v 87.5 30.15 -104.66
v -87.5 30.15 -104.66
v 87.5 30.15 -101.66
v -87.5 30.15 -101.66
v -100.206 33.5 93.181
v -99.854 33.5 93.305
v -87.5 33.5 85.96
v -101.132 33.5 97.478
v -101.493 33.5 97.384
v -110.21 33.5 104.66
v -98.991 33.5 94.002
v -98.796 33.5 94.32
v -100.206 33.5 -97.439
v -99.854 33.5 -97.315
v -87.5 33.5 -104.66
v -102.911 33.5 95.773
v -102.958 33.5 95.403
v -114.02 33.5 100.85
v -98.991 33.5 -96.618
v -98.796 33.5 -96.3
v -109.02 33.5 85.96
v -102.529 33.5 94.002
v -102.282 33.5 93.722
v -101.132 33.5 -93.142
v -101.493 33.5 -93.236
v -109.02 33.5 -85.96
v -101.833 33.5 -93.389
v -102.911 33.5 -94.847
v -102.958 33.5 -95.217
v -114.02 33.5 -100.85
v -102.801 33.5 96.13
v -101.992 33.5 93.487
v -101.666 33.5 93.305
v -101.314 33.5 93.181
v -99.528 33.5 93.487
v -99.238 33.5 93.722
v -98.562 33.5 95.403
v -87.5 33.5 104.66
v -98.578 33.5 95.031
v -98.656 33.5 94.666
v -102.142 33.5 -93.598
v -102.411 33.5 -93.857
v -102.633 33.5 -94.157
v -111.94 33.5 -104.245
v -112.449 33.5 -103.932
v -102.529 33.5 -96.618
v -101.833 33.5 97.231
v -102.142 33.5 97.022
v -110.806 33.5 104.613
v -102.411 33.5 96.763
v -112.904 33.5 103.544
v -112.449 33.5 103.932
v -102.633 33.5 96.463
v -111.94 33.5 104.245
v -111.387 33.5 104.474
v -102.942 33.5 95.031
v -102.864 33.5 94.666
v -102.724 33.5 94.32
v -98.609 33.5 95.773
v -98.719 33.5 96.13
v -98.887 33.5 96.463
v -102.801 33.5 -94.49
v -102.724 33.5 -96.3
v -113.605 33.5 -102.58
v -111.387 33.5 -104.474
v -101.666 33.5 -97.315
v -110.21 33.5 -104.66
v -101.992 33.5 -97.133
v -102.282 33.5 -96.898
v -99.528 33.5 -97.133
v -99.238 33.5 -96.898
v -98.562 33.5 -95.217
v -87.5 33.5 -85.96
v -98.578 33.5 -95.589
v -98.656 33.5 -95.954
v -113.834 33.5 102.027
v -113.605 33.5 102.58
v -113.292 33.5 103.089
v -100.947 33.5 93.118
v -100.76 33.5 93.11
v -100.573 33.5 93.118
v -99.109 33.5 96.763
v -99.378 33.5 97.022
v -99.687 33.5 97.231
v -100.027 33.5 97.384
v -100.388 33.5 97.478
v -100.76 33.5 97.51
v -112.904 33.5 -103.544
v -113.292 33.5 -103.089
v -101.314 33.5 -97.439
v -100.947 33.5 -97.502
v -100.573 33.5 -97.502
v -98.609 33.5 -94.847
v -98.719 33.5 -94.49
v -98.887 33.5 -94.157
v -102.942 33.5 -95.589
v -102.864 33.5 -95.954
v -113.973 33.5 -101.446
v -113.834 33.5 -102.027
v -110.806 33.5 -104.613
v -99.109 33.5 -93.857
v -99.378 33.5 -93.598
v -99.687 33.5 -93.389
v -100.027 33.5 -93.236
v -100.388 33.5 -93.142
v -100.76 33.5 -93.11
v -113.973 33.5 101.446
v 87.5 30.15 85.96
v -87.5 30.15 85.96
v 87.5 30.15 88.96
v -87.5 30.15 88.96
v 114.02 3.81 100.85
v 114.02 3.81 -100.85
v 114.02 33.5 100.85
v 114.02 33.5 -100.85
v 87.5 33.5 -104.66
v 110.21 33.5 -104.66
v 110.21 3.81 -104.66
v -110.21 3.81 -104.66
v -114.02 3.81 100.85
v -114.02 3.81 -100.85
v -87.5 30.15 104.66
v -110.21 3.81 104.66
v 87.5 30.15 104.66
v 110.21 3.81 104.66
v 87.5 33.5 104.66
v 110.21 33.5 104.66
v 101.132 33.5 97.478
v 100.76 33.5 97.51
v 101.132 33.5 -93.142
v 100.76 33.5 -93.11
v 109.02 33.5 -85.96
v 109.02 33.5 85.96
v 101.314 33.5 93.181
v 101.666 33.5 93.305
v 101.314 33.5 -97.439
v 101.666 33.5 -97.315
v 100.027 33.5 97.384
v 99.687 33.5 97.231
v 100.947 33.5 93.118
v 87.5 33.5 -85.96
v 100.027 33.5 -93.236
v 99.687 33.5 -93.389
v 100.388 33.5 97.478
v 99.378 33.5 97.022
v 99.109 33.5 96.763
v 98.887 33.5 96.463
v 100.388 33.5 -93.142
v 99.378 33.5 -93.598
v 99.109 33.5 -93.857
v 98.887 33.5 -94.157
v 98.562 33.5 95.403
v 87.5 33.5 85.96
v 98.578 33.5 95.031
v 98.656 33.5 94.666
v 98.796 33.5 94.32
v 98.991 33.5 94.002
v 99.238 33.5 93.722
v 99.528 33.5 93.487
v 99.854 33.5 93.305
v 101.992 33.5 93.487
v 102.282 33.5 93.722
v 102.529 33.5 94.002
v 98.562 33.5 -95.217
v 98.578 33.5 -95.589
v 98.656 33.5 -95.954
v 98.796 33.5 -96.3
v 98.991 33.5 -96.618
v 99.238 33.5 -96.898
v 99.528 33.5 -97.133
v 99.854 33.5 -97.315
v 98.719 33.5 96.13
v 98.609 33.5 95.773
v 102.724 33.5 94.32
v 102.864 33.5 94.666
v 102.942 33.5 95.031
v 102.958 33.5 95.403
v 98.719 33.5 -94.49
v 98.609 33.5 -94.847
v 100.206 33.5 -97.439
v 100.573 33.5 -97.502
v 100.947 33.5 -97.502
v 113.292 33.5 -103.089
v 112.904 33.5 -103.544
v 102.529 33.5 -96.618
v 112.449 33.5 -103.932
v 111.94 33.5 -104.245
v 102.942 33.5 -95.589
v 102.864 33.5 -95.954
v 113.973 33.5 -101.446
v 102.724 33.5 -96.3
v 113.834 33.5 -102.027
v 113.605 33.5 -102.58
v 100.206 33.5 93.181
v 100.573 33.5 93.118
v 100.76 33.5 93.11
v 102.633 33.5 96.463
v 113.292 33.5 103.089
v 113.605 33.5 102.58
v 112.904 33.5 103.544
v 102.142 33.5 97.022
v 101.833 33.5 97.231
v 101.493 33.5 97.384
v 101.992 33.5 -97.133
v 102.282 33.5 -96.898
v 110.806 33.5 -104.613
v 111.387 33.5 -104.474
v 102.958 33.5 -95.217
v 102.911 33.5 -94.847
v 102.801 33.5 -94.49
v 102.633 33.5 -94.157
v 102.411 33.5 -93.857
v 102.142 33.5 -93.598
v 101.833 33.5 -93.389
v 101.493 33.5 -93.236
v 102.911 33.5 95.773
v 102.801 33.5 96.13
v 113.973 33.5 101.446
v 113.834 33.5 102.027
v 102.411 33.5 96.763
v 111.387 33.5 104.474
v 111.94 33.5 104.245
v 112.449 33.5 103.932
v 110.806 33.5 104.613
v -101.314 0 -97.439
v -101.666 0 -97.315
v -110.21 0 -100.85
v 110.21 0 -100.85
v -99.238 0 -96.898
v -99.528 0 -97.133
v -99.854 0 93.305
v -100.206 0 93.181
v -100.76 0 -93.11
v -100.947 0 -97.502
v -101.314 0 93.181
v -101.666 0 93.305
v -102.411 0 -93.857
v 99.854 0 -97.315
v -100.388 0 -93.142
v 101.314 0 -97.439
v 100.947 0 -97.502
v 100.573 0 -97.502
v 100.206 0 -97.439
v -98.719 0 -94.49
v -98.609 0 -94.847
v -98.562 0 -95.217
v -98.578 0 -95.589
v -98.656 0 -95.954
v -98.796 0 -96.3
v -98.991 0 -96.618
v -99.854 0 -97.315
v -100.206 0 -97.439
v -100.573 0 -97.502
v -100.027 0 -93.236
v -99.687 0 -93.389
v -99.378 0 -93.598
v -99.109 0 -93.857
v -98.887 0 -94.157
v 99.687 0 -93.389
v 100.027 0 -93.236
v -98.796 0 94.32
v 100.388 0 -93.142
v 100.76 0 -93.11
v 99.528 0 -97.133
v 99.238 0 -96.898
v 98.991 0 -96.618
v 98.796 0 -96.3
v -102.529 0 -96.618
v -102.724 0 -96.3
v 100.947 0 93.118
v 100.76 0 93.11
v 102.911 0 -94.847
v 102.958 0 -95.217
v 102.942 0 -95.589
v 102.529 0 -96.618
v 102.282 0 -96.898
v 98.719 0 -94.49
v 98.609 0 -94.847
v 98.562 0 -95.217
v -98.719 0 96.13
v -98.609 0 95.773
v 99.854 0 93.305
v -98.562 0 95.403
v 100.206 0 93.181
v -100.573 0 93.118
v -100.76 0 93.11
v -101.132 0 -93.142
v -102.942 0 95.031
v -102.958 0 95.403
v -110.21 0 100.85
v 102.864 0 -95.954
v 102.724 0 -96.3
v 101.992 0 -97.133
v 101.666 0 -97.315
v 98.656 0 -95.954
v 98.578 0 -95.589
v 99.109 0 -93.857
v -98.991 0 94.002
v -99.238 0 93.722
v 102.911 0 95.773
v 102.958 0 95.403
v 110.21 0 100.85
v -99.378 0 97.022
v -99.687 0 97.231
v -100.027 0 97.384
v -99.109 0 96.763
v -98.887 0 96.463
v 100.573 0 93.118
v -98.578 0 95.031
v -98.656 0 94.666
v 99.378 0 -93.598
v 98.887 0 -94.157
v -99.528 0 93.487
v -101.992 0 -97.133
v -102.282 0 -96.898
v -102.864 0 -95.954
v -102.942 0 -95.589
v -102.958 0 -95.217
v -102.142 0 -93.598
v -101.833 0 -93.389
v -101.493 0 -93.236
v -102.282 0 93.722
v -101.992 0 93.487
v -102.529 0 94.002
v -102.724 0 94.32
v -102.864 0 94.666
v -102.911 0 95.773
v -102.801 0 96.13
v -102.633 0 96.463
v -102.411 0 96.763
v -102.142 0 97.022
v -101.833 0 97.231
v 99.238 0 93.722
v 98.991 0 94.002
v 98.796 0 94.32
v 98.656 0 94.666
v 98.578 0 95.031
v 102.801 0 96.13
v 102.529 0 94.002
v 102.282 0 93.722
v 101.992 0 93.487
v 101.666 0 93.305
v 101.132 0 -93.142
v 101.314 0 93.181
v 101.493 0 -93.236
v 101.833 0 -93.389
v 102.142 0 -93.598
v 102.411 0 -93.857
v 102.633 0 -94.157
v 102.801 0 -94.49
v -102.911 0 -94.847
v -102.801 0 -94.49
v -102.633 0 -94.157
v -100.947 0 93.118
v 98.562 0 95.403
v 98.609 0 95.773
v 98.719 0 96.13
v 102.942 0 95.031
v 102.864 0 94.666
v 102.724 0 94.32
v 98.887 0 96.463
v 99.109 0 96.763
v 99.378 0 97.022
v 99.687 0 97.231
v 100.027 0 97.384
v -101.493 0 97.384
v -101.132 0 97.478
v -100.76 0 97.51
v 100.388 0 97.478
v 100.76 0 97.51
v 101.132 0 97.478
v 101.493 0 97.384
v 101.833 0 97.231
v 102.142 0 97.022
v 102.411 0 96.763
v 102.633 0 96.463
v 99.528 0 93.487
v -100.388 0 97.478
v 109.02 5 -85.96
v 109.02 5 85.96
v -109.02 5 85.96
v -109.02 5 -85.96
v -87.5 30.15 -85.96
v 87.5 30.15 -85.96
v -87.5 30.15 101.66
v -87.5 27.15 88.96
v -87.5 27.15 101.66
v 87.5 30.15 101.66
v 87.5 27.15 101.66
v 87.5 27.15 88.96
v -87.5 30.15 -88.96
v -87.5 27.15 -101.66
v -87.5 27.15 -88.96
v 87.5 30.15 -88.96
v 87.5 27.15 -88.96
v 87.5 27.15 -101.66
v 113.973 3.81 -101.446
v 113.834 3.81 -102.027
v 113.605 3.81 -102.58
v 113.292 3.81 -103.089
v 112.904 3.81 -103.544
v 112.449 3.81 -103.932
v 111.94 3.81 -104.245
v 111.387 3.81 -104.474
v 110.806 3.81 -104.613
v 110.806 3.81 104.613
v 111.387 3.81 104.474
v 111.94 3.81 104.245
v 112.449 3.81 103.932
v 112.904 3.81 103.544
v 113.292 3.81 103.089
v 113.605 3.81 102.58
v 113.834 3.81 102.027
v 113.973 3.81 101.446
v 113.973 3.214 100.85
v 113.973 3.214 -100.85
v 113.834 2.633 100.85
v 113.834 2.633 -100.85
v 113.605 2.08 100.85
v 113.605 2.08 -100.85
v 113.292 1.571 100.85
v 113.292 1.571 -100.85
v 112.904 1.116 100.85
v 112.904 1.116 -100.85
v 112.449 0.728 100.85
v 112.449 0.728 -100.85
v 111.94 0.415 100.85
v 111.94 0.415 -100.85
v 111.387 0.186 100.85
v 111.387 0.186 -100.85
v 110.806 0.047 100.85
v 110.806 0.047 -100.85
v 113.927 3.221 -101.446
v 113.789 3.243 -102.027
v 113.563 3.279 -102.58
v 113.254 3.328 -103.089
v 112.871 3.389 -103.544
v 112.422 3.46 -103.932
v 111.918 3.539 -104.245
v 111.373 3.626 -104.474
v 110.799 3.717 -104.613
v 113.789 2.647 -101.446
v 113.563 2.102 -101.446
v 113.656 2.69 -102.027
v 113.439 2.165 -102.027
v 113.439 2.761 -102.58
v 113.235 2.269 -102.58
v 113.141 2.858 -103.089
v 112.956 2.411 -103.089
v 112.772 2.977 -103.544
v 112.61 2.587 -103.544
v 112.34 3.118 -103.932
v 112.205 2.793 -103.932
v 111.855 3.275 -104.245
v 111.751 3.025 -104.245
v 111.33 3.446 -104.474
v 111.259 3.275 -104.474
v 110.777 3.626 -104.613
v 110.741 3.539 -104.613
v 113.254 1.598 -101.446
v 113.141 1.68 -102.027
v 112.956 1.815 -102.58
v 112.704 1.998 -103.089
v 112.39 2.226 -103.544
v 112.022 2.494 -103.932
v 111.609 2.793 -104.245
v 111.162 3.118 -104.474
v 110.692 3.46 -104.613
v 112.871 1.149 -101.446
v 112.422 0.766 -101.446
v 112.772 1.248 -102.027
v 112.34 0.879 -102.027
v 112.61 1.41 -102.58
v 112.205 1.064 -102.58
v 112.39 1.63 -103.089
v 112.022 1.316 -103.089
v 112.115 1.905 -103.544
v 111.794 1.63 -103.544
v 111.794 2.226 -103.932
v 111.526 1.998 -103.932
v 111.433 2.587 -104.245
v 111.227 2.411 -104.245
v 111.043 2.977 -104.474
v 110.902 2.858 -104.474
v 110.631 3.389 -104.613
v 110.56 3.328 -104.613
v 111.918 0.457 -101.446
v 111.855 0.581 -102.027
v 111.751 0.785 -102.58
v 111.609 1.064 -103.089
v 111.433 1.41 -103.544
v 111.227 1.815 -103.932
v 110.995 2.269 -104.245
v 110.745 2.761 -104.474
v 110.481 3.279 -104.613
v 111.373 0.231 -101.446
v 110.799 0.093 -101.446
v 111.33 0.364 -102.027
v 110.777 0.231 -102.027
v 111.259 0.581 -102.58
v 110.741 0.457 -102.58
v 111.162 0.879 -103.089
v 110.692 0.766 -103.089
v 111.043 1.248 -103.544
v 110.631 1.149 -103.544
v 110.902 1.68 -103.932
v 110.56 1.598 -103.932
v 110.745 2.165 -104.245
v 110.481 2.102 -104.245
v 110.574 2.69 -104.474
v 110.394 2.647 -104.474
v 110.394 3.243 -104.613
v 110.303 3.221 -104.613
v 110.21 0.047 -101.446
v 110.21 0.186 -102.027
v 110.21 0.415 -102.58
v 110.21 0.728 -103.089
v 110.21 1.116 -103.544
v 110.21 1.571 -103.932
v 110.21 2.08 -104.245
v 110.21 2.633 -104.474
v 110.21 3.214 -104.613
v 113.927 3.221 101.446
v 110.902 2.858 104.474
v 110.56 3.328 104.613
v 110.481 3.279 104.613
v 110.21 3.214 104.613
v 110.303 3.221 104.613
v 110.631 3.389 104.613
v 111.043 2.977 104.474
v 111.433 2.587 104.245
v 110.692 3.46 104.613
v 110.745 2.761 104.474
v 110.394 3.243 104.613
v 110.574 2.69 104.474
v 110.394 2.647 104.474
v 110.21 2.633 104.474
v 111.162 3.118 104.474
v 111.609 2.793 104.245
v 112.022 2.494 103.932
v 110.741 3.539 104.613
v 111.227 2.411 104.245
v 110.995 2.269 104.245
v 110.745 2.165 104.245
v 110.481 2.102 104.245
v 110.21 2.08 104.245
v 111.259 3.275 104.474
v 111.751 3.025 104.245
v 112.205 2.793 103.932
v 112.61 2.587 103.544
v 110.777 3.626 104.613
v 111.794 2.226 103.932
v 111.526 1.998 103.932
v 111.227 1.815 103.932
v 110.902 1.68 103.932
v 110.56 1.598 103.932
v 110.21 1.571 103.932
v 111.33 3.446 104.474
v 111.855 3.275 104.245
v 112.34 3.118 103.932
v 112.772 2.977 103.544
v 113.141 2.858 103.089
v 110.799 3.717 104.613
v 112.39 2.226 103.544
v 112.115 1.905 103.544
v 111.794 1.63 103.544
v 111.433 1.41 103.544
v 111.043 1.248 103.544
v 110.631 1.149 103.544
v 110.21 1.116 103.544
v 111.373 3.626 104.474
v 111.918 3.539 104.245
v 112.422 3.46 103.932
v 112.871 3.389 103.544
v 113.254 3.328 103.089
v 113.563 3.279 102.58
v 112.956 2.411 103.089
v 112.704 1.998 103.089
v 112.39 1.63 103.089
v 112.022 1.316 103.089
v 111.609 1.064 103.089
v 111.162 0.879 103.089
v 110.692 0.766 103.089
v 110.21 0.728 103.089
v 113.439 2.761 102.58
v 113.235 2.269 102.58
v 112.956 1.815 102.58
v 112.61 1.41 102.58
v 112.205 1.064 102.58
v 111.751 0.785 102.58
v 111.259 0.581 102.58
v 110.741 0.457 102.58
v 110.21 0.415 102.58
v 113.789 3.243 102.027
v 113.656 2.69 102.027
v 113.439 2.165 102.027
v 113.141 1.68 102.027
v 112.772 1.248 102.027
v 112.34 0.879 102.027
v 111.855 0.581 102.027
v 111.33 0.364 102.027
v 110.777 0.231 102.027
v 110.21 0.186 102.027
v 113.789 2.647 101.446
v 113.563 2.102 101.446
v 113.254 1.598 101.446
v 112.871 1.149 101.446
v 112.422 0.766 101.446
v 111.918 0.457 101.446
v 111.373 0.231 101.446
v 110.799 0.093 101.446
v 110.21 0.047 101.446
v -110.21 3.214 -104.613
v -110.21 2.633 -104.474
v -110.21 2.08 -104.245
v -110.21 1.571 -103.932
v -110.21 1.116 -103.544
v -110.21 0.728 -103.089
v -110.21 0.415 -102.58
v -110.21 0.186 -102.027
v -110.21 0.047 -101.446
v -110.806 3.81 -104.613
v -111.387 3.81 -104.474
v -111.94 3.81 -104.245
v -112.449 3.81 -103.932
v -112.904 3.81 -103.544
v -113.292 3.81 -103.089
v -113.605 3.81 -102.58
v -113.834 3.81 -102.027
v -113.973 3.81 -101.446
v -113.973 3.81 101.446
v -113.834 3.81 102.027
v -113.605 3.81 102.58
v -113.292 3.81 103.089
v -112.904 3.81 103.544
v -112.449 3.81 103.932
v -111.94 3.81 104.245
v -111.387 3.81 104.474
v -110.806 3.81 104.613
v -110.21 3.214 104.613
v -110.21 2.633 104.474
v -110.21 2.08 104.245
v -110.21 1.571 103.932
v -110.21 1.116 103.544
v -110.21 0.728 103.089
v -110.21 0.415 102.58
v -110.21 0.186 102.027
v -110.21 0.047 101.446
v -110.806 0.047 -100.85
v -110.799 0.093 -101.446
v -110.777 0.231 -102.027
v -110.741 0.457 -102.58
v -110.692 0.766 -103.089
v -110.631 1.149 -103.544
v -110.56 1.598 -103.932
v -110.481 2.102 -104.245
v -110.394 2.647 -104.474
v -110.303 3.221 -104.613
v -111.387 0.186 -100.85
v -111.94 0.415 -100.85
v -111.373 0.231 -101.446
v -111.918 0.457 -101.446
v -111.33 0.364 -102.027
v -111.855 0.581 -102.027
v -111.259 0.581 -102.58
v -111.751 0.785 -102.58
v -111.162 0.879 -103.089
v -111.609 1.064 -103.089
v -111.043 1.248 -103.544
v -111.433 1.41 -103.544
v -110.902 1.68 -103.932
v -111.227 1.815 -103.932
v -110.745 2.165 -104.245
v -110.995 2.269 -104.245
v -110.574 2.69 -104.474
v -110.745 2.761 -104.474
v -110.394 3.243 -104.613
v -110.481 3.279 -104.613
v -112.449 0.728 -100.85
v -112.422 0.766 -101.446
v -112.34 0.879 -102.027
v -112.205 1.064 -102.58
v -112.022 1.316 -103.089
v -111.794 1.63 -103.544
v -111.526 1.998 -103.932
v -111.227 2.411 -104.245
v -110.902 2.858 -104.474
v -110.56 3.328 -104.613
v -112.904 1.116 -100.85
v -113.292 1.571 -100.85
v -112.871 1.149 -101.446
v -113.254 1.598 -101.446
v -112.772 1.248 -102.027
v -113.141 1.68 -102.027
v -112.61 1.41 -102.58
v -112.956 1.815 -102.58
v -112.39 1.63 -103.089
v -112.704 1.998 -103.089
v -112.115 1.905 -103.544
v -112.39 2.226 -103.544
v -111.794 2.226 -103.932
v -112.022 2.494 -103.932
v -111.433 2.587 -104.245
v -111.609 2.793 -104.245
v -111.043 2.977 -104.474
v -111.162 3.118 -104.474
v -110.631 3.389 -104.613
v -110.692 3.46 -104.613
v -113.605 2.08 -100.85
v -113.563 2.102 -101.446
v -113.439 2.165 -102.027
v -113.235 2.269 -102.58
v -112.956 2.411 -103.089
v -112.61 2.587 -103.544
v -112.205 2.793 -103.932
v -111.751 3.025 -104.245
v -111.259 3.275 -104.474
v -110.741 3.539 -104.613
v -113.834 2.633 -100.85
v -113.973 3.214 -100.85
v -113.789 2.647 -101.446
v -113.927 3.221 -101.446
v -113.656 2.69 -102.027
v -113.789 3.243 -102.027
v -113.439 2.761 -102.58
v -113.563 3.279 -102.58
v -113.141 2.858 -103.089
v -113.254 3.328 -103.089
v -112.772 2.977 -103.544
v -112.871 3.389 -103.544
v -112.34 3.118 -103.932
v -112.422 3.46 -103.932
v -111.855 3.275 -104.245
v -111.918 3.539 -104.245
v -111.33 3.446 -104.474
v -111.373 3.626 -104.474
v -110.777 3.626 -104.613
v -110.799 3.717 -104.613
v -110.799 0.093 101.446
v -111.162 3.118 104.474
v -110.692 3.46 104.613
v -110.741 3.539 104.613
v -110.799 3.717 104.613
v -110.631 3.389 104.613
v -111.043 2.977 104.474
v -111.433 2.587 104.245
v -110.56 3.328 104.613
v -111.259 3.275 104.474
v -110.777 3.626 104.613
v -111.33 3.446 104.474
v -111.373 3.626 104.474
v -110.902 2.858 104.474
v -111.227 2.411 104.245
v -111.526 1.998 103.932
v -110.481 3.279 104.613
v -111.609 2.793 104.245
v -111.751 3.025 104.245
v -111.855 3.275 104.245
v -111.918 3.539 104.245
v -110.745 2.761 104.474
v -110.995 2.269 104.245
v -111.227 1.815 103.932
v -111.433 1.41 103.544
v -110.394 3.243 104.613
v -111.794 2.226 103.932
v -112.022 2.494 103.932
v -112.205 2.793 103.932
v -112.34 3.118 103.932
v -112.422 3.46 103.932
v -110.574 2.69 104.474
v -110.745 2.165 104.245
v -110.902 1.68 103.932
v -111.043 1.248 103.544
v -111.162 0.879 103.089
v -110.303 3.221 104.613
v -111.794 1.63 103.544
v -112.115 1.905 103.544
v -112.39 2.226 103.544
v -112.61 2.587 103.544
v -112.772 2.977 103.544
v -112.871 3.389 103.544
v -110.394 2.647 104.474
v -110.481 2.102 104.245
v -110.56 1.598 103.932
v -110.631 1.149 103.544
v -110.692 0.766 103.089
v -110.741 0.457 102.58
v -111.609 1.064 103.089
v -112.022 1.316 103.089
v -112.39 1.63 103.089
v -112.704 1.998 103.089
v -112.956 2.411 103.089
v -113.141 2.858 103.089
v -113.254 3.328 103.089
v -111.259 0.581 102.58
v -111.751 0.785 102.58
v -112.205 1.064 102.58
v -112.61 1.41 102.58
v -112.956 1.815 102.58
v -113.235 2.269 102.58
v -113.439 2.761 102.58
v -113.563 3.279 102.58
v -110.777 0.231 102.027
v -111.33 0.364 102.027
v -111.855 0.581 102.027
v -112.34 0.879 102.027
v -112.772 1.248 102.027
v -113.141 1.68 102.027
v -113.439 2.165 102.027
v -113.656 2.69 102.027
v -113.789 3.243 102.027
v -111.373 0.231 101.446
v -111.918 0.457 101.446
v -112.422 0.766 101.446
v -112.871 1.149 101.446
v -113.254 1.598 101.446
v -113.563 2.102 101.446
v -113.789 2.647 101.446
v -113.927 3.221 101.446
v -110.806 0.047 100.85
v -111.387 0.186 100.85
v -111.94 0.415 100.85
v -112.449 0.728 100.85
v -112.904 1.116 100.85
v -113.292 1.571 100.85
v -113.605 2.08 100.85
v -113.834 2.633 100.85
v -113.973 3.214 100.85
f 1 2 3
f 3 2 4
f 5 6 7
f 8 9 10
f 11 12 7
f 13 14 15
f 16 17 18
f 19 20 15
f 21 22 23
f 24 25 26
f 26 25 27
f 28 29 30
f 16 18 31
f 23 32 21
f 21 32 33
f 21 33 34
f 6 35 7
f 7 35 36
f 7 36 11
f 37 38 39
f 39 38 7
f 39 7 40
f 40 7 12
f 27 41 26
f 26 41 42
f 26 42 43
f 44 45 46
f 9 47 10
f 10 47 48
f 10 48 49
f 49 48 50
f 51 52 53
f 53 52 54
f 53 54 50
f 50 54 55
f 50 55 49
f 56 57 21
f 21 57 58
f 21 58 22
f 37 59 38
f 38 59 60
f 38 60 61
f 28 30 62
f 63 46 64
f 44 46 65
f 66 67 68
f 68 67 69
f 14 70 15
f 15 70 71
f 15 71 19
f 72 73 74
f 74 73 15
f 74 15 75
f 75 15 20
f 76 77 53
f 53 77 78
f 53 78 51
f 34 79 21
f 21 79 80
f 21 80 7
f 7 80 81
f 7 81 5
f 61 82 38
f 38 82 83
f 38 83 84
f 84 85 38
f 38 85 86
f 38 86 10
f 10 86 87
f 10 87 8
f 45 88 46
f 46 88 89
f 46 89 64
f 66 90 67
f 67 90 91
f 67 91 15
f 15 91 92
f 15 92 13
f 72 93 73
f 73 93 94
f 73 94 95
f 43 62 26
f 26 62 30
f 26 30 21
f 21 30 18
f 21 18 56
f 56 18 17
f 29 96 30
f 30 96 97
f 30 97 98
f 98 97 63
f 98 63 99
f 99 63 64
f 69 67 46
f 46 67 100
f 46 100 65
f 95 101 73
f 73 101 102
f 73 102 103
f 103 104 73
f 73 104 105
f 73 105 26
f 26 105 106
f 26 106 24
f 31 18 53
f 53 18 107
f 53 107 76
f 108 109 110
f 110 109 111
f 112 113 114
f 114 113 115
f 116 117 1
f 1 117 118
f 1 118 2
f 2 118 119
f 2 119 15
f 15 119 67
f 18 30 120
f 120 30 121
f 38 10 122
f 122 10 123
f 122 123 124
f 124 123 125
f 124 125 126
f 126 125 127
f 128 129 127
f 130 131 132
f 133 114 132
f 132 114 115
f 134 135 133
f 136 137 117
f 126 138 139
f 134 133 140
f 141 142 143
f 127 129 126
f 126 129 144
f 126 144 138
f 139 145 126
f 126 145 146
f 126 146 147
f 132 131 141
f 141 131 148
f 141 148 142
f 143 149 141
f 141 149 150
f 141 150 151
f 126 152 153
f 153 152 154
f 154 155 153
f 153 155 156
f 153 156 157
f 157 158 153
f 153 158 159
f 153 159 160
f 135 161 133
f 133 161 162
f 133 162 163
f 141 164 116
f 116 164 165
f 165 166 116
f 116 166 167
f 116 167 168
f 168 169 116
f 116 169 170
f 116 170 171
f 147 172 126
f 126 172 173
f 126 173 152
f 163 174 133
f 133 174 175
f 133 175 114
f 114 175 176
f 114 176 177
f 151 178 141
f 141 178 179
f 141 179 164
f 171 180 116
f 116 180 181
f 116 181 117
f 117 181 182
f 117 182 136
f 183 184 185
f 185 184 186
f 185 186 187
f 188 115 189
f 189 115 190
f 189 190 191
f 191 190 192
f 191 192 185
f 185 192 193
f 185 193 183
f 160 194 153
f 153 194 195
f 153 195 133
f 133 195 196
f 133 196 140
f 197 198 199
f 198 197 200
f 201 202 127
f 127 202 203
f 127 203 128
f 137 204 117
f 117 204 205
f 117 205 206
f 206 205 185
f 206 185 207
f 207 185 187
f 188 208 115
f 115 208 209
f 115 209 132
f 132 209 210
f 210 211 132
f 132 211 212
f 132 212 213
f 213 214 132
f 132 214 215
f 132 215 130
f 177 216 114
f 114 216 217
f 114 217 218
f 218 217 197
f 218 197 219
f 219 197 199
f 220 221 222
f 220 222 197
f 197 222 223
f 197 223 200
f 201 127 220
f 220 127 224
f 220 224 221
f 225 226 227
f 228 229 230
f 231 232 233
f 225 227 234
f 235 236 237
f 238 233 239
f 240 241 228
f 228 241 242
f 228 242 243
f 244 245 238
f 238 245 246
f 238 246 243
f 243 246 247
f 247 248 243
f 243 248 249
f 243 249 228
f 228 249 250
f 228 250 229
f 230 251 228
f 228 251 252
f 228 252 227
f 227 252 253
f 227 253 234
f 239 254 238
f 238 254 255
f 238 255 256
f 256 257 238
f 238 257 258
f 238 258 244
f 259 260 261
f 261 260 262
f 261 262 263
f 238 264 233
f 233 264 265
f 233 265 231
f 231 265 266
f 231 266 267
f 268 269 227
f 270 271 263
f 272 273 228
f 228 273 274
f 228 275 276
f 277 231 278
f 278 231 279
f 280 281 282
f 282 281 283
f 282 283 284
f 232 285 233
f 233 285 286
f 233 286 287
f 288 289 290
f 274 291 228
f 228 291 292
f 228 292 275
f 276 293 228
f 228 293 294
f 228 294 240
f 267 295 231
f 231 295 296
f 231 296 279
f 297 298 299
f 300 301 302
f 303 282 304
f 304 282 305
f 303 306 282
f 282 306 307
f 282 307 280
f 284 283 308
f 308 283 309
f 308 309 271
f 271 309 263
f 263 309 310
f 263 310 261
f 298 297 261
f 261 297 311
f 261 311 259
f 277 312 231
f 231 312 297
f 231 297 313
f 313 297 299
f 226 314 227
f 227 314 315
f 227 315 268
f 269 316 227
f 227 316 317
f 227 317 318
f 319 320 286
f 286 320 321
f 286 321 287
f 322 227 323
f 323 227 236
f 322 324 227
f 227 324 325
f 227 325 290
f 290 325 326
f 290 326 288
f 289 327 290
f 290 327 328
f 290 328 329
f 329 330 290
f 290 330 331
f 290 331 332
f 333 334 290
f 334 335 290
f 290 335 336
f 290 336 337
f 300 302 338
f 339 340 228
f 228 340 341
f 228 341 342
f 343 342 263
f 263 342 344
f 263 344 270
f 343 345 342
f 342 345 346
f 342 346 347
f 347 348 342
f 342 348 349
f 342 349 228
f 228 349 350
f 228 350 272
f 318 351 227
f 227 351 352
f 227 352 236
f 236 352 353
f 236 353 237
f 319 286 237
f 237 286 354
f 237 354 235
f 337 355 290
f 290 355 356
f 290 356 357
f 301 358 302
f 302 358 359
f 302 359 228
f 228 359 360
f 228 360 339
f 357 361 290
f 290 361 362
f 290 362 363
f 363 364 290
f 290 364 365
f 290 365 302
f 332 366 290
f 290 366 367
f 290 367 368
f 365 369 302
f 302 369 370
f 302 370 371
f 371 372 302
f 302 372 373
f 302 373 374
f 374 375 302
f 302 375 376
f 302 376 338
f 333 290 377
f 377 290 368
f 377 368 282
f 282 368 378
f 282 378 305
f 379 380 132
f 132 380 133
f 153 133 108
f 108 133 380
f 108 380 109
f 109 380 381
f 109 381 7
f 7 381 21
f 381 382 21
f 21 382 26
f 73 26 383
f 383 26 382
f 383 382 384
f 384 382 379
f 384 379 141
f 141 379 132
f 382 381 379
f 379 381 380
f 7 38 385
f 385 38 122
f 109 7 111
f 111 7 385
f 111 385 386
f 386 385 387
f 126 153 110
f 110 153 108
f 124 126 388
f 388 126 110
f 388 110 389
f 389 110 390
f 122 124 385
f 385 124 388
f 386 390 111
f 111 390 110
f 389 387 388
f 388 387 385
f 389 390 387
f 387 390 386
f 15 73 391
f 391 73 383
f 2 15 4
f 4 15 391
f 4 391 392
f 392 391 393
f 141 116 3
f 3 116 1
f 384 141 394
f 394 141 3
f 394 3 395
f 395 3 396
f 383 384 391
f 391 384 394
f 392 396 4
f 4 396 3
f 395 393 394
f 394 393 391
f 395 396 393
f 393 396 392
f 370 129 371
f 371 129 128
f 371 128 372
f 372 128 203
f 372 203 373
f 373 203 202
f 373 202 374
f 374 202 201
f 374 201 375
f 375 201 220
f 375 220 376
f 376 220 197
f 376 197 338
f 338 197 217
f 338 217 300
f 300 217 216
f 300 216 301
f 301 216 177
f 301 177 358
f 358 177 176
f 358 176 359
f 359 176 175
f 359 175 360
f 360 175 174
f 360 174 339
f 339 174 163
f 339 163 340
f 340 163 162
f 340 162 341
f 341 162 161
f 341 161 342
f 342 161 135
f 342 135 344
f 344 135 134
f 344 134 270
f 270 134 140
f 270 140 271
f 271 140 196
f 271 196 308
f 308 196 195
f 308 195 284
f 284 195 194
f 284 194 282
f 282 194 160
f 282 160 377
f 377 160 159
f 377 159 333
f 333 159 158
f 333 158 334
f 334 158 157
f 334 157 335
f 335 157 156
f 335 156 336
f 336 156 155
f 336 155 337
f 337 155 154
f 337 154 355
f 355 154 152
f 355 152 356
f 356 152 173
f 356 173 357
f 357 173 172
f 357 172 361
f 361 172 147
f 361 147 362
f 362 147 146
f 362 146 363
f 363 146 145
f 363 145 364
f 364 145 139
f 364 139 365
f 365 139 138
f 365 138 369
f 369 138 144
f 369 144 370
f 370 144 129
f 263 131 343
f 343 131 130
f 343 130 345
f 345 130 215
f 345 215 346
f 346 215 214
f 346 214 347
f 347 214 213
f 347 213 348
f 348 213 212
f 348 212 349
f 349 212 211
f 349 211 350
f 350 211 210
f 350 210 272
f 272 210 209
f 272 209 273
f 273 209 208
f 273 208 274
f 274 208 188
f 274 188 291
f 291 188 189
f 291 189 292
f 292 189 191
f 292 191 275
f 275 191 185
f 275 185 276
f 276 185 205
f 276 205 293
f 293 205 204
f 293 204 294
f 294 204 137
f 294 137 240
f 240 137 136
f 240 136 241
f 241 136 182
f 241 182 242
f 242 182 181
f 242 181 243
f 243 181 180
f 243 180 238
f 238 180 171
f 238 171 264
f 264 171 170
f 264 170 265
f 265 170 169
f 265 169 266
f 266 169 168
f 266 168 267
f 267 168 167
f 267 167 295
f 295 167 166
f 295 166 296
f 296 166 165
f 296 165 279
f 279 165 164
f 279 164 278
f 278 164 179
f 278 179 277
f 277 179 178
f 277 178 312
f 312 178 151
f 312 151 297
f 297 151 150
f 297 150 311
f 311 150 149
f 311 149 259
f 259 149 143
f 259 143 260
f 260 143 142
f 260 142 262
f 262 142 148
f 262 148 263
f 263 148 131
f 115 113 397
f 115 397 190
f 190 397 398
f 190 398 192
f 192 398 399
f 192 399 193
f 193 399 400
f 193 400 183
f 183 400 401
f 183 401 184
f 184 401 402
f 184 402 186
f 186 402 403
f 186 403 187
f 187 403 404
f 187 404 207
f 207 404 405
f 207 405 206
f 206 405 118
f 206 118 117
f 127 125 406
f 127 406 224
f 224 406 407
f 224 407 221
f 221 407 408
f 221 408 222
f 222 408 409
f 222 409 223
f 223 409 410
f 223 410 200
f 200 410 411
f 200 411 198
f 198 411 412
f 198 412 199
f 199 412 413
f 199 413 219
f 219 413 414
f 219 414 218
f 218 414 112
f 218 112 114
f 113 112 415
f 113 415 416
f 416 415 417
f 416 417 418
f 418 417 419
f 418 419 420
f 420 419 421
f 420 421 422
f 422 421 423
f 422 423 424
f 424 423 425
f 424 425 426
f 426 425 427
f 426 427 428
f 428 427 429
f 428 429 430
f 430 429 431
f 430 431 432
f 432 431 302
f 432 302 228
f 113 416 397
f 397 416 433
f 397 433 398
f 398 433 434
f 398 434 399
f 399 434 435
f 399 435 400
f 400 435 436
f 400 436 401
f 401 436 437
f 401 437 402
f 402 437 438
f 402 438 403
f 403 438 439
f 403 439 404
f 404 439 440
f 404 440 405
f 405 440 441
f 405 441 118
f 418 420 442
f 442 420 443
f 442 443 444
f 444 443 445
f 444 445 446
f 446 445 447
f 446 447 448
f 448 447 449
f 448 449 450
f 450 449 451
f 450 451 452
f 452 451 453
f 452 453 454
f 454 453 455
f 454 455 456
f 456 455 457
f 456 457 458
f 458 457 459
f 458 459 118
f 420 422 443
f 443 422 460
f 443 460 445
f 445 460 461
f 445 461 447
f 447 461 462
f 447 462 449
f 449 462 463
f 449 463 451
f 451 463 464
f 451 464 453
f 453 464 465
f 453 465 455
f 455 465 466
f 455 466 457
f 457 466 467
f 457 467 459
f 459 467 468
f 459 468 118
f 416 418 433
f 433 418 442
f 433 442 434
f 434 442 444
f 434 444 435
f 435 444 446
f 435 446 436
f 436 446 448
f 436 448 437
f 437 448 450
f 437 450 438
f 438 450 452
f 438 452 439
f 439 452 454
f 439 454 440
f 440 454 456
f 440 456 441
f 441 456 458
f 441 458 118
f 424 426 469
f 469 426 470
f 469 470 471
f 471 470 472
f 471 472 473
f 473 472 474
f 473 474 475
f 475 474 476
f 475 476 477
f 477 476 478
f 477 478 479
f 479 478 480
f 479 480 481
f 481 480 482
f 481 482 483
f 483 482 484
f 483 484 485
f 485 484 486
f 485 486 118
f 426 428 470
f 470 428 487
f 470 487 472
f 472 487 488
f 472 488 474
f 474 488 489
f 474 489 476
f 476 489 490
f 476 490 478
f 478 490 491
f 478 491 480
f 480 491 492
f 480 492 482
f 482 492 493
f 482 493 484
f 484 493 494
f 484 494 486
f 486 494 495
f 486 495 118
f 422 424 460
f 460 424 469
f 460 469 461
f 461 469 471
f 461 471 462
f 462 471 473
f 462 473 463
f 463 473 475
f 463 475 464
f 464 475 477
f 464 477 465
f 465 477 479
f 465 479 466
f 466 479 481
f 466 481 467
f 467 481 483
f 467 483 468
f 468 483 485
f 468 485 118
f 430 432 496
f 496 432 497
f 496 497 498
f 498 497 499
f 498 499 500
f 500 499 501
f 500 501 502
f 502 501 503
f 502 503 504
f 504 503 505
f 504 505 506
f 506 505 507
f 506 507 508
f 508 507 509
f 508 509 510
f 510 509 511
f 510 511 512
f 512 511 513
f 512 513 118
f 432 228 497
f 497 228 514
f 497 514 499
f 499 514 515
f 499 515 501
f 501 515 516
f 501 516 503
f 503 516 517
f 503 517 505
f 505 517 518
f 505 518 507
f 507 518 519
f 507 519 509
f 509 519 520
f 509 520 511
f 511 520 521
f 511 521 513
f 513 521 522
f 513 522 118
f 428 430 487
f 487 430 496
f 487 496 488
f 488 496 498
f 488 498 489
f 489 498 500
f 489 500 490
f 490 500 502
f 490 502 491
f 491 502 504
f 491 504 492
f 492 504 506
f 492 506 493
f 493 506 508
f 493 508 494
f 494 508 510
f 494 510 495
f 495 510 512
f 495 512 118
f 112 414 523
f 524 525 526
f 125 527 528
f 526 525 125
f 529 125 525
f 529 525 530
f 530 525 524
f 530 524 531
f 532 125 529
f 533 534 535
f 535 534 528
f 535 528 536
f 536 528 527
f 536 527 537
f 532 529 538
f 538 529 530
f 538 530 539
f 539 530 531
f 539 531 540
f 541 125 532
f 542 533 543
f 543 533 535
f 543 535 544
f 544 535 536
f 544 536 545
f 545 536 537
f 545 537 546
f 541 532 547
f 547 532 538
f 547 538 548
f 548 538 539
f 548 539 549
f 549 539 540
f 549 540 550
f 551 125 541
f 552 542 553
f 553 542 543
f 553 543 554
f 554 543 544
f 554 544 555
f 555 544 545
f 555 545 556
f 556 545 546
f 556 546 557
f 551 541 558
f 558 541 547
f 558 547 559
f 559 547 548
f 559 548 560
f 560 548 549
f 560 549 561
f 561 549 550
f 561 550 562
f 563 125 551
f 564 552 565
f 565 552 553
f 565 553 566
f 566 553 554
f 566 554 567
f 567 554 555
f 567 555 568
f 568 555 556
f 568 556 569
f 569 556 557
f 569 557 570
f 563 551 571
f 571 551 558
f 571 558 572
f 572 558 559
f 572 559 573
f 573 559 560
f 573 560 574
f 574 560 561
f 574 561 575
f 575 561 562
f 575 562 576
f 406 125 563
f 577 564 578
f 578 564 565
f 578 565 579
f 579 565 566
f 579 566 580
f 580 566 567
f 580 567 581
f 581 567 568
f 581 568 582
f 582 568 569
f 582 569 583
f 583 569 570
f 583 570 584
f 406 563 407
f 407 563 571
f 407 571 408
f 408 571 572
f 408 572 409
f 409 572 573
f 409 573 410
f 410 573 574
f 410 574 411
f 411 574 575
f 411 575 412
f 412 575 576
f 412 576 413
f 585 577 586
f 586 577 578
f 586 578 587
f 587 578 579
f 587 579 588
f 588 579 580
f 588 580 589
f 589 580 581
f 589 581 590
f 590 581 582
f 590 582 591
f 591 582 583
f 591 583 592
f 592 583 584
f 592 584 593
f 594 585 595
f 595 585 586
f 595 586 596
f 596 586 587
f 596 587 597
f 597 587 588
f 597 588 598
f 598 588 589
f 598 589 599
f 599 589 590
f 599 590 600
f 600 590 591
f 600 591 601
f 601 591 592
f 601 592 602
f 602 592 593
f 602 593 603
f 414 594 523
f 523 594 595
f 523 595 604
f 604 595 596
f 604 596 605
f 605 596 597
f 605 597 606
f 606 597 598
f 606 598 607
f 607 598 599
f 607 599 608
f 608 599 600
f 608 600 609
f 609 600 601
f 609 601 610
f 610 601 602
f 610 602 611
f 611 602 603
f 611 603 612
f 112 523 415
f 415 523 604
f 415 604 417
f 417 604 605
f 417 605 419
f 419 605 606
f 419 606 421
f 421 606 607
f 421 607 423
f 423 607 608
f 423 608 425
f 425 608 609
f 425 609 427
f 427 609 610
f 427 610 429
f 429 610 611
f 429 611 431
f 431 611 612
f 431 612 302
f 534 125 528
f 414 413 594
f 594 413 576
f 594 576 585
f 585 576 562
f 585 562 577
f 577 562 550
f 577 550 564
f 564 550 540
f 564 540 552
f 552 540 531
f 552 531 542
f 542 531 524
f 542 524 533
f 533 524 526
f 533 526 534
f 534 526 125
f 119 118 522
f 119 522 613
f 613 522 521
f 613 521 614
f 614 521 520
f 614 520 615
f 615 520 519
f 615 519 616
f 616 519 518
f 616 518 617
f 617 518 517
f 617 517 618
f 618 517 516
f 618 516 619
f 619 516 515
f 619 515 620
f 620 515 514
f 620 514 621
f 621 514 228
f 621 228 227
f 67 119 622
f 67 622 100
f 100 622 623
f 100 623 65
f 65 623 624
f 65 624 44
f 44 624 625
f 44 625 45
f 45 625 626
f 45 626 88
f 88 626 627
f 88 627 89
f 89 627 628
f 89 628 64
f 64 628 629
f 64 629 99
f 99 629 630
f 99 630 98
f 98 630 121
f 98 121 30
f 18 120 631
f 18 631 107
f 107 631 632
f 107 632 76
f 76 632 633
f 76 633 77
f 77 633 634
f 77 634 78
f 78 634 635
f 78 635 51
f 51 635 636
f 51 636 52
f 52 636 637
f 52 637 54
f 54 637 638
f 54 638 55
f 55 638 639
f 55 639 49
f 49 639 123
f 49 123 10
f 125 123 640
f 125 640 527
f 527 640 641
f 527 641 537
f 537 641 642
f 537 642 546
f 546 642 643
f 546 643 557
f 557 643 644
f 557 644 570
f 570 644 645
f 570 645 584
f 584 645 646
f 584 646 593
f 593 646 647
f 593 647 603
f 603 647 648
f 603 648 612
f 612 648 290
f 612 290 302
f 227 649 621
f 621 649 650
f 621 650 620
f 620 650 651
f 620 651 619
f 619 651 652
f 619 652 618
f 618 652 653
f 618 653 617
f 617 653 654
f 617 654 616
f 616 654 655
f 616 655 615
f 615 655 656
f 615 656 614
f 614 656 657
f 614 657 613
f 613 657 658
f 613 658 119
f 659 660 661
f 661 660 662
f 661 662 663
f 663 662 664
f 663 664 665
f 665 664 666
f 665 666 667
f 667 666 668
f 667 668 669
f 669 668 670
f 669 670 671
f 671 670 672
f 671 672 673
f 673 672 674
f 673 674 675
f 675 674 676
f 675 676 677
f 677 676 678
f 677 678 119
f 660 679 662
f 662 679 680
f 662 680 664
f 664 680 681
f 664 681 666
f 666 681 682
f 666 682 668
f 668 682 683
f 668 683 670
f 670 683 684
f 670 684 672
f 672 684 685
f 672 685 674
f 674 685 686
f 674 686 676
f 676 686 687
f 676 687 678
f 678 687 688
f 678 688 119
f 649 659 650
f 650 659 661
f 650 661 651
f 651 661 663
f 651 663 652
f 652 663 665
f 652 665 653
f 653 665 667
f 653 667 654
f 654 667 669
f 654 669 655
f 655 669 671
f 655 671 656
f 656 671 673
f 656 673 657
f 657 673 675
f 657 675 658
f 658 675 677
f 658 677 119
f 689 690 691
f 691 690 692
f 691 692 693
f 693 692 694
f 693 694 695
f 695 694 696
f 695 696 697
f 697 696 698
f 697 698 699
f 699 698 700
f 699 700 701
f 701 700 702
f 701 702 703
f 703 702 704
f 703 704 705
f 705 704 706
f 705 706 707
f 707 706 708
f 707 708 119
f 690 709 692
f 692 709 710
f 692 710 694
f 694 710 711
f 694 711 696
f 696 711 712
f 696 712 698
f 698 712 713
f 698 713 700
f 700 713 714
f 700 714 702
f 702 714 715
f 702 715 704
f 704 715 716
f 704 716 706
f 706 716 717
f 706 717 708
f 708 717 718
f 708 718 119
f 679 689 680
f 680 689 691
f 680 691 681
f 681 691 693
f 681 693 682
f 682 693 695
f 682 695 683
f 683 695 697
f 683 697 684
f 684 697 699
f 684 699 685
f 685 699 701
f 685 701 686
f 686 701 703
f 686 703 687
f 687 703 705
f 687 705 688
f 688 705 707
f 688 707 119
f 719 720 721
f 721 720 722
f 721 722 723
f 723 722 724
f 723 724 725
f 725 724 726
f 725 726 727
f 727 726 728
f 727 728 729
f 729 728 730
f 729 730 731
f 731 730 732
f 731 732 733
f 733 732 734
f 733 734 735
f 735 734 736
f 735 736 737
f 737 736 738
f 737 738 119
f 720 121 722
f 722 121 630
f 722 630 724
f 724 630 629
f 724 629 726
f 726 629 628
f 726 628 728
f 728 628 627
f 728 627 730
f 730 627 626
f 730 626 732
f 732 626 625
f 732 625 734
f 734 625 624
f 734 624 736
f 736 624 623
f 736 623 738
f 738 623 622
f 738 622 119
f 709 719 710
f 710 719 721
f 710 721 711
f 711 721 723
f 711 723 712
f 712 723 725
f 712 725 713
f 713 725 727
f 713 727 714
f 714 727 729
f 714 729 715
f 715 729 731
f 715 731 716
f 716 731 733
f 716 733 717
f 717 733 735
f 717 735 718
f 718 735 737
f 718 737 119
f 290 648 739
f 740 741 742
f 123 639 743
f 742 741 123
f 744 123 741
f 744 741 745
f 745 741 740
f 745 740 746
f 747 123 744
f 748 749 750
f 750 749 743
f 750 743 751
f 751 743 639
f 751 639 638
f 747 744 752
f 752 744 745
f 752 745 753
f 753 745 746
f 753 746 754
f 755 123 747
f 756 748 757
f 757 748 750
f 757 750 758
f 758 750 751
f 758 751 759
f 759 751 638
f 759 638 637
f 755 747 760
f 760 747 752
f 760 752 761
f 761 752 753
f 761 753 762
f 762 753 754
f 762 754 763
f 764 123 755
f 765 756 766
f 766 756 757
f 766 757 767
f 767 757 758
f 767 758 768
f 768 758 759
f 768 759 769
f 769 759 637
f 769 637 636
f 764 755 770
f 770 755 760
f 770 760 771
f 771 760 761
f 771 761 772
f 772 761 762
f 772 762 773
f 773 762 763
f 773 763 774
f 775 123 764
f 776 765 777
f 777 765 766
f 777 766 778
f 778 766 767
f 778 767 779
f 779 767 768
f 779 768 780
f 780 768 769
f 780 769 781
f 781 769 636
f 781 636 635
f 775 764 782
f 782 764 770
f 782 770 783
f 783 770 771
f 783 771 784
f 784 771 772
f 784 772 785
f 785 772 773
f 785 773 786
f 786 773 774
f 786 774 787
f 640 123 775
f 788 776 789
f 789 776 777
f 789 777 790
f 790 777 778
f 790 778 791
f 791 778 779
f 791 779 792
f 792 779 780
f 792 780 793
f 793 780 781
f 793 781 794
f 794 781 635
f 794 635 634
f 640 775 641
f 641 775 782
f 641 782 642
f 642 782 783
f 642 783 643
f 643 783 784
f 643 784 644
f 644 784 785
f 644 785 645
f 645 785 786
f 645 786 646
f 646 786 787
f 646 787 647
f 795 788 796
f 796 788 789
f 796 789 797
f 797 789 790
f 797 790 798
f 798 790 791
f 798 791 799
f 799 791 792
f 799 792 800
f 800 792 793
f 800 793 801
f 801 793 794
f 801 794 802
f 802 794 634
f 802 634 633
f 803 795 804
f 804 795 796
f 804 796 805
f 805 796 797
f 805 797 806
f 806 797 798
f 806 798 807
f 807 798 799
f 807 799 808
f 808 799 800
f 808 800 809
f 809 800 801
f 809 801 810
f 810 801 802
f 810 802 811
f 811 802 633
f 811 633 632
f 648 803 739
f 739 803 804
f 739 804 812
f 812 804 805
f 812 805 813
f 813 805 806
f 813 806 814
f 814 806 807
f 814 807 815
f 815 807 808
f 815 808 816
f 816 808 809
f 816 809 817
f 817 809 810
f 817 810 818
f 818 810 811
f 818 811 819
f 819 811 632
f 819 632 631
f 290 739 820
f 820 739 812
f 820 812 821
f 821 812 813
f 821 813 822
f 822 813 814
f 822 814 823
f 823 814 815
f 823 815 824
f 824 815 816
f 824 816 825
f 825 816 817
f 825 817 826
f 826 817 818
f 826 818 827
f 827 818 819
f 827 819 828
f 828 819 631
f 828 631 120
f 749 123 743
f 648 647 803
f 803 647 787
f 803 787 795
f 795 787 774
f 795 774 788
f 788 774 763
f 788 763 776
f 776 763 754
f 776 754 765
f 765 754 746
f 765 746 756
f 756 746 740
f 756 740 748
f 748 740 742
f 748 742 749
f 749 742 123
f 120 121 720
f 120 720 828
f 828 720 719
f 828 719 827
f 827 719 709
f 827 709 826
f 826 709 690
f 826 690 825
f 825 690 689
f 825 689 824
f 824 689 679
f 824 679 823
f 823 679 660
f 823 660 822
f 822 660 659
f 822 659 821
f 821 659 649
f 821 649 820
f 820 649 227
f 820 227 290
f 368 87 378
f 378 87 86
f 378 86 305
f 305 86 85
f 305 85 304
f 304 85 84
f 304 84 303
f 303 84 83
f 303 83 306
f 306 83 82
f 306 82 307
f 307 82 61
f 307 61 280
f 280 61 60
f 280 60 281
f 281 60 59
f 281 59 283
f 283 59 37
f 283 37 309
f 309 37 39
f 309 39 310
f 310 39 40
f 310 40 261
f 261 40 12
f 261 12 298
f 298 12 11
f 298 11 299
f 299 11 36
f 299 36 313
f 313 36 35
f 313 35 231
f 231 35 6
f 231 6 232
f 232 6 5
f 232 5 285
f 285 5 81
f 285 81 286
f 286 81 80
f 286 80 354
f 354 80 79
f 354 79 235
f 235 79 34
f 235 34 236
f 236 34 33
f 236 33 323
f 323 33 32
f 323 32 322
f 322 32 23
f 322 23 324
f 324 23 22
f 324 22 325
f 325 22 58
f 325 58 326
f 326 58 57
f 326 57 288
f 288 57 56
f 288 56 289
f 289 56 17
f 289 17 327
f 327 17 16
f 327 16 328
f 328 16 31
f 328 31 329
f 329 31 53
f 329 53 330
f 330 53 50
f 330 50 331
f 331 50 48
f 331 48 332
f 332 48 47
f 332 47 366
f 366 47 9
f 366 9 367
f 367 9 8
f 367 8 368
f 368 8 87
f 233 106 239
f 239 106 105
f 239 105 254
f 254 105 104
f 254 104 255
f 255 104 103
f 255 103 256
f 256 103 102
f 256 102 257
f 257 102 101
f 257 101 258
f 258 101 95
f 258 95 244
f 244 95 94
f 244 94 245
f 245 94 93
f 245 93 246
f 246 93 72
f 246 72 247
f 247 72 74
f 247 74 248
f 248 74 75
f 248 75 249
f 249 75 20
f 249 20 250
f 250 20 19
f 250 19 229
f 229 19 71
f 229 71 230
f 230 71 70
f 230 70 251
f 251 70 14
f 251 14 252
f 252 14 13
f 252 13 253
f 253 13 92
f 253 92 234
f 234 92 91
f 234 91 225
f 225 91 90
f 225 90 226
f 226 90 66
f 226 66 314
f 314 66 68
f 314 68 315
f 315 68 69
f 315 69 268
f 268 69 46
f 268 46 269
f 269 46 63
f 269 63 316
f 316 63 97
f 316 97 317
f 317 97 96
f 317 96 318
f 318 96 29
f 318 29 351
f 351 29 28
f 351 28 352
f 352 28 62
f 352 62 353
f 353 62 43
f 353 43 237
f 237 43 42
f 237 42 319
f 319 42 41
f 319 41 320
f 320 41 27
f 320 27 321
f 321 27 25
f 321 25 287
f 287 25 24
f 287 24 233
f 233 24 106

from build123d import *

# Parameters (mm, degrees)
SKETCH1_W           = 228.04
SKETCH1_H           = 209.32
BOSS_EXTRUDE1_DEPTH = 33.5
SKETCH2_W           = 218.04
SKETCH2_H           = 171.92
CUT_EXTRUDE1_DEPTH  = 28.5
SKETCH4_W           = 175
SKETCH4_H           = 18.7
CUT_EXTRUDE2_DEPTH  = 3.35
SKETCH5_W           = 175
SKETCH5_H           = 12.7
CUT_EXTRUDE3_DEPTH  = 3
SKETCH6_W           = 175
SKETCH6_H           = 18.7
CUT_EXTRUDE4_DEPTH  = 3.35
SKETCH7_W           = 175
SKETCH7_H           = 12.7
CUT_EXTRUDE5_DEPTH  = 3
SKETCH11_R          = 2.2
CUT_EXTRUDE6_DEPTH  = 33.5
FILLET3_R           = 3.81


with BuildPart() as part:
    # Sketch1 → Boss-Extrude1 (new body)
    with BuildSketch(Plane(origin=(0, 0, 0), x_dir=(1, 0, 0), z_dir=(0, 1, 0))):
        Rectangle(SKETCH1_W, SKETCH1_H)
    extrude(amount=BOSS_EXTRUDE1_DEPTH)

    # Sketch2 → Cut-Extrude1 (cut)
    with BuildSketch(Plane(origin=(0, 33.5, 0), x_dir=(1, 0, 0), z_dir=(0, 1, 0))):
        Rectangle(SKETCH2_W, SKETCH2_H)
    extrude(amount=-CUT_EXTRUDE1_DEPTH, mode=Mode.SUBTRACT)

    # Sketch4 → Cut-Extrude2 (cut)
    with BuildSketch(Plane(origin=(0, 33.5, 0), x_dir=(1, 0, 0), z_dir=(0, 1, 0))):
        with Locations((0, -95.31)):
            Rectangle(SKETCH4_W, SKETCH4_H)
    extrude(amount=-CUT_EXTRUDE2_DEPTH, mode=Mode.SUBTRACT)

    # Sketch5 → Cut-Extrude3 (cut)
    with BuildSketch(Plane(origin=(0, 30.15, 0), x_dir=(1, 0, 0), z_dir=(0, 1, 0))):
        with Locations((0, -95.31)):
            Rectangle(SKETCH5_W, SKETCH5_H)
    extrude(amount=-CUT_EXTRUDE3_DEPTH, mode=Mode.SUBTRACT)

    # Sketch6 → Cut-Extrude4 (cut)
    with BuildSketch(Plane(origin=(0, 33.5, 0), x_dir=(1, 0, 0), z_dir=(0, 1, 0))):
        with Locations((0, 95.31)):
            Rectangle(SKETCH6_W, SKETCH6_H)
    extrude(amount=-CUT_EXTRUDE4_DEPTH, mode=Mode.SUBTRACT)

    # Sketch7 → Cut-Extrude5 (cut)
    with BuildSketch(Plane(origin=(0, 30.15, 0), x_dir=(1, 0, 0), z_dir=(0, 1, 0))):
        with Locations((0, 95.31)):
            Rectangle(SKETCH7_W, SKETCH7_H)
    extrude(amount=-CUT_EXTRUDE5_DEPTH, mode=Mode.SUBTRACT)

    # Sketch11 → Cut-Extrude6 (cut)
    with BuildSketch(Plane(origin=(0, 33.5, 0), x_dir=(1, 0, 0), z_dir=(0, 1, 0))):
        with Locations(Location((100.76, 95.31, 0), (0, 0, 270))):
            Circle(SKETCH11_R)
        with Locations(Location((100.76, -95.31, 0), (0, 0, 90))):
            Circle(SKETCH11_R)
    cut_extrude6 = extrude(amount=-CUT_EXTRUDE6_DEPTH, mode=Mode.SUBTRACT)

    # Fillet3
    fillet3_edges = [part.edges().sort_by_distance(p)[0] for p in [
        (0, 0, 104.66),
        (-114.02, 0, 0),
        (0, 0, -104.66),
        (114.02, 0, 0),
        (114.02, 16.75, 104.66),
        (-114.02, 16.75, 104.66),
        (-114.02, 16.75, -104.66),
        (114.02, 16.75, -104.66),
    ]]
    fillet(fillet3_edges, radius=FILLET3_R)

    # Mirror1: Cut-Extrude6 across plane
    add(cut_extrude6.mirror(Plane.ZY), mode=Mode.SUBTRACT)


solid = part.part
